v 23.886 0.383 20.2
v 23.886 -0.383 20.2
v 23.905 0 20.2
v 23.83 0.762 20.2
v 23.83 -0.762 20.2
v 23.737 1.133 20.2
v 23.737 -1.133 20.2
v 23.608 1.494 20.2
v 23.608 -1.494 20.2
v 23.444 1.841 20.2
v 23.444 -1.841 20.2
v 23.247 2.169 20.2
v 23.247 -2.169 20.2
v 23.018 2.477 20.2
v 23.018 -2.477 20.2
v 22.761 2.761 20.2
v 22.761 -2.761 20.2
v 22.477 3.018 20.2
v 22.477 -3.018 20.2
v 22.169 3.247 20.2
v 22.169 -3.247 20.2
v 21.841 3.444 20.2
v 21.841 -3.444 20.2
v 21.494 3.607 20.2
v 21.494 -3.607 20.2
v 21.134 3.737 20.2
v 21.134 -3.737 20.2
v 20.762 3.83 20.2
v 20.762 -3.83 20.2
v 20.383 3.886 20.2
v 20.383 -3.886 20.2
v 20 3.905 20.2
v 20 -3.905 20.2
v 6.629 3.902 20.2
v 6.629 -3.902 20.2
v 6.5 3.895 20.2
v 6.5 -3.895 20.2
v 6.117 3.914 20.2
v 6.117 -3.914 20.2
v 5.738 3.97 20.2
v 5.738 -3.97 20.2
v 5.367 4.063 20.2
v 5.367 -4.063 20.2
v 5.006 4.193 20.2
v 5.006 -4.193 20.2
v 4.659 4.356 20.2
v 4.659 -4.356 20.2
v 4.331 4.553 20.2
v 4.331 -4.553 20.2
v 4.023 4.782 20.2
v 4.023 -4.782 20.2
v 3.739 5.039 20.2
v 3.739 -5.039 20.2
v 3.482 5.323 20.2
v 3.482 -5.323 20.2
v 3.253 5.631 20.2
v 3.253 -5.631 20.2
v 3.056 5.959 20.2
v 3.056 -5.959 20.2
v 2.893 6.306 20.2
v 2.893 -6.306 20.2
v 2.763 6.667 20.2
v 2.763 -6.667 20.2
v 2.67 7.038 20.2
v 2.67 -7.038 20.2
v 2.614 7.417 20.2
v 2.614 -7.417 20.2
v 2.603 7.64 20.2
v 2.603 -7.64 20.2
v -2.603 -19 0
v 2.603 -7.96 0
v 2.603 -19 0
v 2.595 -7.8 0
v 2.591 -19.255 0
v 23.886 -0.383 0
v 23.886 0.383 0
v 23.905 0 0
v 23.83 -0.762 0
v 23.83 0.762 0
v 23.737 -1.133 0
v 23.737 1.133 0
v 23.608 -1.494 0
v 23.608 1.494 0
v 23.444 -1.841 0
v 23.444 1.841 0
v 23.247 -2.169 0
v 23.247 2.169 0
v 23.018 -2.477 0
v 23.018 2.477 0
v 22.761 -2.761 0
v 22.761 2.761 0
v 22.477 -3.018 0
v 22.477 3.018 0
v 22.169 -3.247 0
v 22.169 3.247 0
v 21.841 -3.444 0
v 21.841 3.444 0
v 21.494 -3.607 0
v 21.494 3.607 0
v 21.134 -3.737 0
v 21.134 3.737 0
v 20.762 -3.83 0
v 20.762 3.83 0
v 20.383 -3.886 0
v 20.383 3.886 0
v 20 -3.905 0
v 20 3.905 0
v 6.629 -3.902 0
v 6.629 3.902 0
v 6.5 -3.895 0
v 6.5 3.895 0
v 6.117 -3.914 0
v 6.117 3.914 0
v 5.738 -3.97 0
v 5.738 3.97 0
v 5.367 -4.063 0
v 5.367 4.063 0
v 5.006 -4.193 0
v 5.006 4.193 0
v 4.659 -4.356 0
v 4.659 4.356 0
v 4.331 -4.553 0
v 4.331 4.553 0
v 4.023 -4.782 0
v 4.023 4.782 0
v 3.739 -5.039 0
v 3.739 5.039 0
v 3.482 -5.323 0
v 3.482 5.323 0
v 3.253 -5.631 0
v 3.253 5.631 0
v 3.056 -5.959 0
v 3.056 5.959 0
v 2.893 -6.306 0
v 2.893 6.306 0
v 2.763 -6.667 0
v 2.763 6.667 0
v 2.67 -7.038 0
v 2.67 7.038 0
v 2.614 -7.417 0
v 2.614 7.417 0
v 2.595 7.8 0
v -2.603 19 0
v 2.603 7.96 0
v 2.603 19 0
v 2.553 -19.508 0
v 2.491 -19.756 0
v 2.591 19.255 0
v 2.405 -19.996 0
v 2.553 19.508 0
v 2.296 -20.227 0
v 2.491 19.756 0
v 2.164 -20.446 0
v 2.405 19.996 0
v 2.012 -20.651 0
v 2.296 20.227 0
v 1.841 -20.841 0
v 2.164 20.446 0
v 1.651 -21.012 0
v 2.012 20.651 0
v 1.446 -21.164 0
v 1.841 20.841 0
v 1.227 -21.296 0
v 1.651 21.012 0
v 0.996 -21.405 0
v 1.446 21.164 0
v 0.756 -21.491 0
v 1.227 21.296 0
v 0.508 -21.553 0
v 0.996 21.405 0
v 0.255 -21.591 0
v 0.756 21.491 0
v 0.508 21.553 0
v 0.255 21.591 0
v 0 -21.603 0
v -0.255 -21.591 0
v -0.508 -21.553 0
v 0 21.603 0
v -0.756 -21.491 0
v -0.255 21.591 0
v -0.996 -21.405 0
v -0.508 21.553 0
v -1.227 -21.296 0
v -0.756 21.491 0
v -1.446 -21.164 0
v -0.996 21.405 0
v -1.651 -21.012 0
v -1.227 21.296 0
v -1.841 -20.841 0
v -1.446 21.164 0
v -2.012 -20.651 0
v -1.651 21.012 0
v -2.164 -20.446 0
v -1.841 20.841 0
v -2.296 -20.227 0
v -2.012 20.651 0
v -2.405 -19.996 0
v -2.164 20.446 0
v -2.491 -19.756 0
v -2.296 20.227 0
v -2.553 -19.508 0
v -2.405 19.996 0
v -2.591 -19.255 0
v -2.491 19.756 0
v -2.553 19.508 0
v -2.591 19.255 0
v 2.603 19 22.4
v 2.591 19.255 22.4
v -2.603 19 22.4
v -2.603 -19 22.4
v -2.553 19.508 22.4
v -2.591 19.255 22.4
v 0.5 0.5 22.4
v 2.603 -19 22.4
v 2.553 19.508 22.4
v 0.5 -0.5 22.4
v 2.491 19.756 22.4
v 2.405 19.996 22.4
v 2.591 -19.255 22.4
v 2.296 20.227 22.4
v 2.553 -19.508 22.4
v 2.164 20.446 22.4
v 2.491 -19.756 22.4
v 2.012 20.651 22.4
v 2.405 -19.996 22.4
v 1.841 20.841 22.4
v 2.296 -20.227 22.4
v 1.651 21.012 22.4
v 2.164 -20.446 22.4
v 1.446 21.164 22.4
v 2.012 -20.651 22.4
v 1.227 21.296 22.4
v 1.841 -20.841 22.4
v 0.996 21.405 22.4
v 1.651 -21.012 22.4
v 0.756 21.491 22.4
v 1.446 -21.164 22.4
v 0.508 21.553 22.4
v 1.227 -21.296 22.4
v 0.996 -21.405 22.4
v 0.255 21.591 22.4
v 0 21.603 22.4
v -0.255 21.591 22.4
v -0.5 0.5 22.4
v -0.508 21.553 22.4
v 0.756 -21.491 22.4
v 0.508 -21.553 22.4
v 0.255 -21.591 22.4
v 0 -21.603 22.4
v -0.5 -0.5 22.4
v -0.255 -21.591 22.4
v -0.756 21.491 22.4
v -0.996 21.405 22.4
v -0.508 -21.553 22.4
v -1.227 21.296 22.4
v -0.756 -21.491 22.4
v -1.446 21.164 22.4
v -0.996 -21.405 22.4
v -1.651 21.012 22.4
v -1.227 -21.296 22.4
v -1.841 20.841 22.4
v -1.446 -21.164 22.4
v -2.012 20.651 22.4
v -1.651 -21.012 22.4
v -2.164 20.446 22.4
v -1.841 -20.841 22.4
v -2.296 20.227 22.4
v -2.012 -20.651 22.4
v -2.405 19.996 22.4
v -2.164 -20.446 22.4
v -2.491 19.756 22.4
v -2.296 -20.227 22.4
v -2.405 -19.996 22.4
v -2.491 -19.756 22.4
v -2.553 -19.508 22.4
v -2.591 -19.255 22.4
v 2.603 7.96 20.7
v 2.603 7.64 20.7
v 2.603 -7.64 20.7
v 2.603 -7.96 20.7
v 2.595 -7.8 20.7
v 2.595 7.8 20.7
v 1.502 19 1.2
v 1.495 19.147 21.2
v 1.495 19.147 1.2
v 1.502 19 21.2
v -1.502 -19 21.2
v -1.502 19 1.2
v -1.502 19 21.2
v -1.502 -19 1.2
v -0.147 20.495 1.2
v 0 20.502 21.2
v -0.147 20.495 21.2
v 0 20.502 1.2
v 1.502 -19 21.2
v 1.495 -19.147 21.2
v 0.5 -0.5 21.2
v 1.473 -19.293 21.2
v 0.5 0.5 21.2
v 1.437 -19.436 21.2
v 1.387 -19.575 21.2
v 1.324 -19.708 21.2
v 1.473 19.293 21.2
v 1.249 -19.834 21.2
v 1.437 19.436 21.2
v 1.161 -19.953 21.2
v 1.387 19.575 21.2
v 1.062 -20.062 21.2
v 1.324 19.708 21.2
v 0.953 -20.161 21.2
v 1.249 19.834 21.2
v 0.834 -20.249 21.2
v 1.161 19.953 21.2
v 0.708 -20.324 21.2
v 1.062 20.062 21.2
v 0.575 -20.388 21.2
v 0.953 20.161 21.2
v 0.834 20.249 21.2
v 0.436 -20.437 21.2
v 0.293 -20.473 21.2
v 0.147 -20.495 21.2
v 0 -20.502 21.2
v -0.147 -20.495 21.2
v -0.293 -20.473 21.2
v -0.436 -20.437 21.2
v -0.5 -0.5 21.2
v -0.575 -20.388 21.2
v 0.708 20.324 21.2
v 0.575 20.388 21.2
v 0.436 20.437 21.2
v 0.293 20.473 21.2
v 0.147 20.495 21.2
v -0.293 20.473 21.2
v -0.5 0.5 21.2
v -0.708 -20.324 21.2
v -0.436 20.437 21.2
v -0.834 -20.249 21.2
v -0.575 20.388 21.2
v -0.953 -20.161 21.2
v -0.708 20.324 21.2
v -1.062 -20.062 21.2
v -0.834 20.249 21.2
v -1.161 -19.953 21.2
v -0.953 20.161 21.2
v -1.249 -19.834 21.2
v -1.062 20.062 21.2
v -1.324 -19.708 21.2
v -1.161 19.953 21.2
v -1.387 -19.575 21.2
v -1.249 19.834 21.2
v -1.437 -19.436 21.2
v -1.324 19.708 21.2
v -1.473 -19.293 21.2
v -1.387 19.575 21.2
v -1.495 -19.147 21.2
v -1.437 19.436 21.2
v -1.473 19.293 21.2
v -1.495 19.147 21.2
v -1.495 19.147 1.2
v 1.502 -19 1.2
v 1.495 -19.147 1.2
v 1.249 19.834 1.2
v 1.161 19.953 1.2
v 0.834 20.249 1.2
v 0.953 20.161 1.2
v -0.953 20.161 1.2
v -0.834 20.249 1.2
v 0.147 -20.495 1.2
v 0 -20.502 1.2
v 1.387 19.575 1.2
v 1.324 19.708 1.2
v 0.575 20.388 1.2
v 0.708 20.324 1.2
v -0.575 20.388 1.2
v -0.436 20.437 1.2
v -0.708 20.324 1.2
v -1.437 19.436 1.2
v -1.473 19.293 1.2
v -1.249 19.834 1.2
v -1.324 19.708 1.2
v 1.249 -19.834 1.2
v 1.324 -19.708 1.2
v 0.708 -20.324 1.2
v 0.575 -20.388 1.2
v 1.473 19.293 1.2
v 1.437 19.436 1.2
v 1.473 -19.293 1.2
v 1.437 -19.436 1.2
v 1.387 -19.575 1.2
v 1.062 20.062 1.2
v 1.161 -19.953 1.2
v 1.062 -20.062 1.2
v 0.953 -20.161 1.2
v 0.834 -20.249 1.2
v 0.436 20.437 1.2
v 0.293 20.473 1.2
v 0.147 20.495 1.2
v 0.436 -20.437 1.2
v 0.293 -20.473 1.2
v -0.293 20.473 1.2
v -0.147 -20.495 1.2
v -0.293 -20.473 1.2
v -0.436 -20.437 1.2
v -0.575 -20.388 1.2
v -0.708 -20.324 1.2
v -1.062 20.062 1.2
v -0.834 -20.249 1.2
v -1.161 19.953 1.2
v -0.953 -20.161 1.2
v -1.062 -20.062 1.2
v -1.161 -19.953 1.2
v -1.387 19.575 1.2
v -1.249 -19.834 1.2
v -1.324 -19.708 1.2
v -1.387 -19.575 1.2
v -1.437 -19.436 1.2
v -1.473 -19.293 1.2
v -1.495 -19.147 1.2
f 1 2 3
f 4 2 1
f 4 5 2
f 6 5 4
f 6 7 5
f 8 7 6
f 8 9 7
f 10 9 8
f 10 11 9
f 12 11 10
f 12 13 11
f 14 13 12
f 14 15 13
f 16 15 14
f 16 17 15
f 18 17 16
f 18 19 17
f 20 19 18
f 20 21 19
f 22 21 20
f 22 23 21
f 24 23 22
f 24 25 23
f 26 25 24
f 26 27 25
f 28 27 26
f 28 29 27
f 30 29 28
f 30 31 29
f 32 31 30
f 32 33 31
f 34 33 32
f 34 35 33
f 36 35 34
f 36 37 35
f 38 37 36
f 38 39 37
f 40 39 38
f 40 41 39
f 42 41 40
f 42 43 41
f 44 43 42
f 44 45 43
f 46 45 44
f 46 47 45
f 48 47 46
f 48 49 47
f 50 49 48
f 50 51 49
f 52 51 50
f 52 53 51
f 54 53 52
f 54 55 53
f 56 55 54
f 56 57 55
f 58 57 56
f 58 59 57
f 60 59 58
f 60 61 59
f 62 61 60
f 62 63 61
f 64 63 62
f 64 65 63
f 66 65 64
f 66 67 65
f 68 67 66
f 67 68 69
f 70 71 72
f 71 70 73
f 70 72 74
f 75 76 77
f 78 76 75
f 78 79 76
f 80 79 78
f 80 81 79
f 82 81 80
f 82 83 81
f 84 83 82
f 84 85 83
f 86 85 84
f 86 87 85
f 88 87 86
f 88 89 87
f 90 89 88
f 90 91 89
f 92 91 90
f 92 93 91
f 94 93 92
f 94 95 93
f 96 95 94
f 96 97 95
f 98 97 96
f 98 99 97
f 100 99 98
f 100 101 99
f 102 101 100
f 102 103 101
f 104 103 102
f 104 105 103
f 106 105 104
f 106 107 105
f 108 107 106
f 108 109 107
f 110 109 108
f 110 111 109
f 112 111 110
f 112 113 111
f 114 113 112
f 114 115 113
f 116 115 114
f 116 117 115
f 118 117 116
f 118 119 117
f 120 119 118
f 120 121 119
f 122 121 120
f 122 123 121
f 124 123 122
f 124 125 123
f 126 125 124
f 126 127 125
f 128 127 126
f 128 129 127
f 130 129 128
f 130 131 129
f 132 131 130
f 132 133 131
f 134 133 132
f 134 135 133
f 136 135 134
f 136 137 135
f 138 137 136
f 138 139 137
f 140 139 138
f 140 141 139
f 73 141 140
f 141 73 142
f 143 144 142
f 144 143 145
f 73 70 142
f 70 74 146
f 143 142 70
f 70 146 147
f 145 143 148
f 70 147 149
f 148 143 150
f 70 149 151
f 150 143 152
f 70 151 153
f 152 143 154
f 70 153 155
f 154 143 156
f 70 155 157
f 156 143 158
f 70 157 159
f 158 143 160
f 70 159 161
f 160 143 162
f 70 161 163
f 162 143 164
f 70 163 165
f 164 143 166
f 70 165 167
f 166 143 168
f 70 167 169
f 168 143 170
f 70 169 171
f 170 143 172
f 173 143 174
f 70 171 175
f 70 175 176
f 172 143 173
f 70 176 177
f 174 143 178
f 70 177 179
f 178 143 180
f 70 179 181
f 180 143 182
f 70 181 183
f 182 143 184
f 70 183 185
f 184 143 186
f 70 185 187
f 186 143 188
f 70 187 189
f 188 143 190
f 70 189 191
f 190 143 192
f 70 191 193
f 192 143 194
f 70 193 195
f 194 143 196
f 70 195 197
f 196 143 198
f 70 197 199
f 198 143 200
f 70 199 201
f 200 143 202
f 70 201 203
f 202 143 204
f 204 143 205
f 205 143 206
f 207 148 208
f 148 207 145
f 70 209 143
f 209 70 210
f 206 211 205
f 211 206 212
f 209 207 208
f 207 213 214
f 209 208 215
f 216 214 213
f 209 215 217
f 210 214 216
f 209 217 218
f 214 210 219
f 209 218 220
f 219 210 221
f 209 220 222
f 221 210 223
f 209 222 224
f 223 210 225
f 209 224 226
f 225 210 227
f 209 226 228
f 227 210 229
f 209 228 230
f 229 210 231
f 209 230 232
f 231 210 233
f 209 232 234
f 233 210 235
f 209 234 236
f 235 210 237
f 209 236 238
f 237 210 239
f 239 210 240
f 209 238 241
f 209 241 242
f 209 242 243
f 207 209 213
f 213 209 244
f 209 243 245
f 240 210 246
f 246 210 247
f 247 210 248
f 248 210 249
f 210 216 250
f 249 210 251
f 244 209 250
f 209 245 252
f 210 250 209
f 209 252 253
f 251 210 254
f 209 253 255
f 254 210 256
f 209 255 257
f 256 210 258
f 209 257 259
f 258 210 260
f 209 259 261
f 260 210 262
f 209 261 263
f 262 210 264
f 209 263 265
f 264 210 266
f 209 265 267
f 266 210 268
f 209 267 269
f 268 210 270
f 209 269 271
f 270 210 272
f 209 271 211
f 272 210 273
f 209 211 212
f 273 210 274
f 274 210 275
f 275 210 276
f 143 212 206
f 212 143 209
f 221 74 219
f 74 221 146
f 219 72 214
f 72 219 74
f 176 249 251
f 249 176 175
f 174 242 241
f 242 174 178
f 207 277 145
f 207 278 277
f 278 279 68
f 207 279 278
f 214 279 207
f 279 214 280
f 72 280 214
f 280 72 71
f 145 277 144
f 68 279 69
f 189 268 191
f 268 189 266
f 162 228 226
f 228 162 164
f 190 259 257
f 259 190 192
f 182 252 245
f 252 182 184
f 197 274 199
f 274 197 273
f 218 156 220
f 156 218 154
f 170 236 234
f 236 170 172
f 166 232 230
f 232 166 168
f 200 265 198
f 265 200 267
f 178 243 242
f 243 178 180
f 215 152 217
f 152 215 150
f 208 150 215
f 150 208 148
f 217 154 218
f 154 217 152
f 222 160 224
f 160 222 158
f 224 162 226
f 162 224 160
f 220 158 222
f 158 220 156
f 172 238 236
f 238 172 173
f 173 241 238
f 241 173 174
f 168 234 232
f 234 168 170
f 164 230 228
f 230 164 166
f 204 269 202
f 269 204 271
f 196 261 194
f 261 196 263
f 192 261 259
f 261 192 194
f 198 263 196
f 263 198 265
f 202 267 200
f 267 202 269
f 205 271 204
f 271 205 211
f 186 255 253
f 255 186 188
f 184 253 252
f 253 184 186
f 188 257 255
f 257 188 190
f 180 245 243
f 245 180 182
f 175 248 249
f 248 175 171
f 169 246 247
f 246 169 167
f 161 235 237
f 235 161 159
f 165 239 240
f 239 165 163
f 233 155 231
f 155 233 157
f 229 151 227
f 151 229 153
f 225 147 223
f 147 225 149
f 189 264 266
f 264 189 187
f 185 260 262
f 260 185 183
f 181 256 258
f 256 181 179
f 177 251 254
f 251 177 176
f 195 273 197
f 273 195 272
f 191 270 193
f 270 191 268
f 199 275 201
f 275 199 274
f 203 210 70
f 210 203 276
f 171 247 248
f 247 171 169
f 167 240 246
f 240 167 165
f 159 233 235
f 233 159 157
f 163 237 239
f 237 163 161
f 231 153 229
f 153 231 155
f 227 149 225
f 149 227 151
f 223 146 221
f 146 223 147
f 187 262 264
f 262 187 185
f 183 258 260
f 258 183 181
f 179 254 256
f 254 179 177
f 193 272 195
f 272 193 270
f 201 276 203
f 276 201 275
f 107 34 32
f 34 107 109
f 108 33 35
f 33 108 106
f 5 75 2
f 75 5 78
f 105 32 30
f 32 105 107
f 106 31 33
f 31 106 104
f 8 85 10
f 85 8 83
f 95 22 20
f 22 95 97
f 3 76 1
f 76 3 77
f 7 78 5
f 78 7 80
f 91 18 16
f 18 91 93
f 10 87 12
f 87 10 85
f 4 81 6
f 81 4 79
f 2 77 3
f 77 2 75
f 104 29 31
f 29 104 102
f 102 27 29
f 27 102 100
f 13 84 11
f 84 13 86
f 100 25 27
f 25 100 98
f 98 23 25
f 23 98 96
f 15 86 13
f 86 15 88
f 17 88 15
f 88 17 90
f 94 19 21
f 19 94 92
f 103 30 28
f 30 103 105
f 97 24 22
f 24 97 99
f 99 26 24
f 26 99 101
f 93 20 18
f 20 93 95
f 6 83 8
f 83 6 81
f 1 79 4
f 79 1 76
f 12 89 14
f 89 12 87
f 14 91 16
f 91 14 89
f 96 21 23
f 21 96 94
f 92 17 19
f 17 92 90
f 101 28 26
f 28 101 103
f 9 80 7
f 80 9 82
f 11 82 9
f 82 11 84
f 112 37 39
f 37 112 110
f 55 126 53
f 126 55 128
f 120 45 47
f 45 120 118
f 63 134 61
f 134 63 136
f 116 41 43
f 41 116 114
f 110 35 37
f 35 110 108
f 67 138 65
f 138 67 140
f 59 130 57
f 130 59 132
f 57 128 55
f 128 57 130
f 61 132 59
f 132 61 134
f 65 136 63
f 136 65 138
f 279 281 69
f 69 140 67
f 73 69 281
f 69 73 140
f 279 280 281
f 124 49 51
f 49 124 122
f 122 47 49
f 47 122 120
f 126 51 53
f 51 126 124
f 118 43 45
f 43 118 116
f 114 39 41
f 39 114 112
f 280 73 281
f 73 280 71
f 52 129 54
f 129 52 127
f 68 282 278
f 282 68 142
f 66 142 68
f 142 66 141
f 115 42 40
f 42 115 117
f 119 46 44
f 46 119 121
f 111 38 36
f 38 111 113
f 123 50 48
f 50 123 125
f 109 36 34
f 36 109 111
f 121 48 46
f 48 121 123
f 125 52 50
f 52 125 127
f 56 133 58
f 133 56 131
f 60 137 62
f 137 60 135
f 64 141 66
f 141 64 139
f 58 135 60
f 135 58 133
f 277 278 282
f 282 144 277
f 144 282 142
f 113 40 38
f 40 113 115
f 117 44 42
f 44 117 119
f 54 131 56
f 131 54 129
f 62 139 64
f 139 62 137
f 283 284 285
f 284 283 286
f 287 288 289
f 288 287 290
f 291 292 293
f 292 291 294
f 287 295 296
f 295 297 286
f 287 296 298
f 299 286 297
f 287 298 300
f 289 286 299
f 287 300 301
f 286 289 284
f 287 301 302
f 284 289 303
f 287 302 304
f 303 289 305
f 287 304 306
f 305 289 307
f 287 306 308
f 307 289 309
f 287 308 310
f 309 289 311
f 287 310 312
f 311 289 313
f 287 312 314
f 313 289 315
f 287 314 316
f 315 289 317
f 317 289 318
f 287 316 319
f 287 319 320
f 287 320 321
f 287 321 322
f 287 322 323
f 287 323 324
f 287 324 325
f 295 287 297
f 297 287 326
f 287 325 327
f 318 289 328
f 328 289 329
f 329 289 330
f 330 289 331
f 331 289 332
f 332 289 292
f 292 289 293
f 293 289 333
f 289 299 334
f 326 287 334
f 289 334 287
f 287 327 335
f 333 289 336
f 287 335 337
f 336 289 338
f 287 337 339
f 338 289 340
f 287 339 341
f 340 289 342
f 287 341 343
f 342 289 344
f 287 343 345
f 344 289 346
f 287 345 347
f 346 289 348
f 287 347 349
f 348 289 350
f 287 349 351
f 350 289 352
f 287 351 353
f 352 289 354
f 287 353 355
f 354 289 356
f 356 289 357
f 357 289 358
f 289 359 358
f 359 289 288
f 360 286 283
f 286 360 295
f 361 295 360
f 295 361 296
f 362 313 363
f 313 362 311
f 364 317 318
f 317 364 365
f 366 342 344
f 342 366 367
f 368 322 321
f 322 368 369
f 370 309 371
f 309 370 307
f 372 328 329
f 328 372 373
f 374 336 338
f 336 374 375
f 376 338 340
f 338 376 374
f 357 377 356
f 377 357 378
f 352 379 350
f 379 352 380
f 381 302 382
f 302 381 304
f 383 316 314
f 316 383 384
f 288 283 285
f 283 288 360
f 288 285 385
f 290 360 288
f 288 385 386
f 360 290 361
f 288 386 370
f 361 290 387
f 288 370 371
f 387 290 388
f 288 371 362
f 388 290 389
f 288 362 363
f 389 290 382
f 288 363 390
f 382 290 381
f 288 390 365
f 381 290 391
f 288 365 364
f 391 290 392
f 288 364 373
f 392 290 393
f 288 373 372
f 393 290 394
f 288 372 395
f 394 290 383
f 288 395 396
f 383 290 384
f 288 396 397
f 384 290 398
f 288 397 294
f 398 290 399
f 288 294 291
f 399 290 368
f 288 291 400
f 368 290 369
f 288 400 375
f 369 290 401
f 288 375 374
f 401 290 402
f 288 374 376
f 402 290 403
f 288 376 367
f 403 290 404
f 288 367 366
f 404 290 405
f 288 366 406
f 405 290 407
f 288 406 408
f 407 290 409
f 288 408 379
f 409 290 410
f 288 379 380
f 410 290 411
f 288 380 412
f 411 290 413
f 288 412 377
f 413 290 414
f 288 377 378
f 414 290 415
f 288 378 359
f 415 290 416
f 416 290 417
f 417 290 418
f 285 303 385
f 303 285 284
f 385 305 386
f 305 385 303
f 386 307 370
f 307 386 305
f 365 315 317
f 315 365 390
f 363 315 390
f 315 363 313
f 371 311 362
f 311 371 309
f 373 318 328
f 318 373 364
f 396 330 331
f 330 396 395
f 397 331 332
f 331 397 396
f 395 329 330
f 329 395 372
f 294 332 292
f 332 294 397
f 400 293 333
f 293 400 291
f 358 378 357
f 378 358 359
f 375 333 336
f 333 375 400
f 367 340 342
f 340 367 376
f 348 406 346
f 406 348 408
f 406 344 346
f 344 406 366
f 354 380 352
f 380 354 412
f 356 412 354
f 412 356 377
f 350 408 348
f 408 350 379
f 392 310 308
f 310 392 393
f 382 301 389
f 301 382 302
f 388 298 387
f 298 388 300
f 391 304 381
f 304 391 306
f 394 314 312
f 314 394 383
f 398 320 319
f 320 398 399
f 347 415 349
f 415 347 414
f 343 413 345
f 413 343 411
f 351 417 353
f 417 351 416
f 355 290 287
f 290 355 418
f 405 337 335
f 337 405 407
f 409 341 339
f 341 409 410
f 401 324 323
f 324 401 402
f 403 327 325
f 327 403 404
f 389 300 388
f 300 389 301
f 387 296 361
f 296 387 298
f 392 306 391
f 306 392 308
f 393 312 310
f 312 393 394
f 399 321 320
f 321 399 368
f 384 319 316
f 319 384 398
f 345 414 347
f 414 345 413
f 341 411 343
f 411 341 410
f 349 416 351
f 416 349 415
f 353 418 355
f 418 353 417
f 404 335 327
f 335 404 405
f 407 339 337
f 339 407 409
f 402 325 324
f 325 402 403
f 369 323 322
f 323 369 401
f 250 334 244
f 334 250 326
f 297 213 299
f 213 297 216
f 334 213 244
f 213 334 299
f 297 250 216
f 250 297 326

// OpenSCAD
// file: common.scad
left   = -1;
right  = 1;
top    = 1;
bottom = -1;
front  = -1;
rear   = 1;

// 1/8" x 1/16" inch magnet -- very tiny!
magnet_diam      = 3.175;
magnet_thickness = 3.175/2;

magnet_clearance = 0.25;

magnet_hole_diam      = magnet_diam      + magnet_clearance*2;
magnet_hole_thickness = magnet_thickness + magnet_clearance*2;

magnet_dist_to_exterior = 0.8;

function accurate_diam(diam,sides) = 1 / cos(180/sides) / 2 * diam;

module hole(diam,len,sides=8) {
  cylinder(r=accurate_diam(diam,sides),h=len,center=true,$fn=sides);
}
// main file
include <common.scad>;

extrusion_width  = 0.4;
extrusion_height = 0.3;
wall_thickness   = extrusion_width * 4;
floor_thickness  = extrusion_height * 4;
resolution       = 64;

magnet_depth       = 12;
magnet_inner_diam  = 40;
magnet_outer_diam  = magnet_inner_diam + magnet_depth*2;
magnet_thickness   = 2;
magnet_arc_portion = 85;

magnet_hole_width     = 17+3;
magnet_hole_length    = 36+2;
magnet_hole_thickness = magnet_thickness+1;

module hdd_magnet() {
  module body() {
    hole(magnet_outer_diam, magnet_thickness, resolution);
  }

  module holes() {
    hole(magnet_inner_diam, magnet_thickness+1, resolution);
  }

  translate([-magnet_outer_diam/2,0,0]) {
    intersection() {
      difference() {
        body();
        holes();
      }
      hull() {
        for(side=[left,right]) {
          rotate([0,0,magnet_arc_portion/2*side]) {
            translate([magnet_outer_diam,.5*side,0]) {
              cube([magnet_outer_diam*2,1,magnet_thickness*2],center=true);
            }
          }
        }
      }
    }
  }
}

module hdd_fridge_magnet() {
  height = magnet_hole_width + floor_thickness*2;
  width  = magnet_thickness  + wall_thickness*2;

  handle_height    = height-floor_thickness-1;
  handle_thickness = width*1.5;

  module body() {
    hull() {
      for(side=[left,right]) {
        translate([0,magnet_hole_length/2*side,height/2]) {
          hole(width,height,resolution);
        }
      }
    }


    hull() {
      translate([0,0,handle_height/2]) {
        cube([1,handle_thickness,handle_height],center=true);

        translate([20,0,0]) {
          hole(handle_thickness,handle_height,resolution);
        }
      }
    }

    for(side=[left,right]) {
      translate([width/2,handle_thickness/2*side,handle_height/2]) {
        cube([handle_thickness,handle_thickness,handle_height],center=true);
      }
    }
  }

  module holes() {
    translate([0,0,floor_thickness]) {
      hull() {
        for(side=[left,right]) {
          translate([0,magnet_hole_length/2*side,magnet_hole_width/2]) {
            hole(magnet_hole_thickness,magnet_hole_width,resolution);
          }
        }
      }
      translate([-4,0,0]) {
        rotate([0,90,0]) {
          % hdd_magnet();
        }
      }
    }

    for(side=[left,right]) {
      translate([width/2+handle_thickness/2,handle_thickness*side,handle_height/2]) {
        hole(handle_thickness,handle_height+1,resolution);
      }
    }

    translate([0,0,height]) {
      cube([1,1,height],center=true);
    }
  }

  difference() {
    body();
    holes();
  }
}

hdd_fridge_magnet();
